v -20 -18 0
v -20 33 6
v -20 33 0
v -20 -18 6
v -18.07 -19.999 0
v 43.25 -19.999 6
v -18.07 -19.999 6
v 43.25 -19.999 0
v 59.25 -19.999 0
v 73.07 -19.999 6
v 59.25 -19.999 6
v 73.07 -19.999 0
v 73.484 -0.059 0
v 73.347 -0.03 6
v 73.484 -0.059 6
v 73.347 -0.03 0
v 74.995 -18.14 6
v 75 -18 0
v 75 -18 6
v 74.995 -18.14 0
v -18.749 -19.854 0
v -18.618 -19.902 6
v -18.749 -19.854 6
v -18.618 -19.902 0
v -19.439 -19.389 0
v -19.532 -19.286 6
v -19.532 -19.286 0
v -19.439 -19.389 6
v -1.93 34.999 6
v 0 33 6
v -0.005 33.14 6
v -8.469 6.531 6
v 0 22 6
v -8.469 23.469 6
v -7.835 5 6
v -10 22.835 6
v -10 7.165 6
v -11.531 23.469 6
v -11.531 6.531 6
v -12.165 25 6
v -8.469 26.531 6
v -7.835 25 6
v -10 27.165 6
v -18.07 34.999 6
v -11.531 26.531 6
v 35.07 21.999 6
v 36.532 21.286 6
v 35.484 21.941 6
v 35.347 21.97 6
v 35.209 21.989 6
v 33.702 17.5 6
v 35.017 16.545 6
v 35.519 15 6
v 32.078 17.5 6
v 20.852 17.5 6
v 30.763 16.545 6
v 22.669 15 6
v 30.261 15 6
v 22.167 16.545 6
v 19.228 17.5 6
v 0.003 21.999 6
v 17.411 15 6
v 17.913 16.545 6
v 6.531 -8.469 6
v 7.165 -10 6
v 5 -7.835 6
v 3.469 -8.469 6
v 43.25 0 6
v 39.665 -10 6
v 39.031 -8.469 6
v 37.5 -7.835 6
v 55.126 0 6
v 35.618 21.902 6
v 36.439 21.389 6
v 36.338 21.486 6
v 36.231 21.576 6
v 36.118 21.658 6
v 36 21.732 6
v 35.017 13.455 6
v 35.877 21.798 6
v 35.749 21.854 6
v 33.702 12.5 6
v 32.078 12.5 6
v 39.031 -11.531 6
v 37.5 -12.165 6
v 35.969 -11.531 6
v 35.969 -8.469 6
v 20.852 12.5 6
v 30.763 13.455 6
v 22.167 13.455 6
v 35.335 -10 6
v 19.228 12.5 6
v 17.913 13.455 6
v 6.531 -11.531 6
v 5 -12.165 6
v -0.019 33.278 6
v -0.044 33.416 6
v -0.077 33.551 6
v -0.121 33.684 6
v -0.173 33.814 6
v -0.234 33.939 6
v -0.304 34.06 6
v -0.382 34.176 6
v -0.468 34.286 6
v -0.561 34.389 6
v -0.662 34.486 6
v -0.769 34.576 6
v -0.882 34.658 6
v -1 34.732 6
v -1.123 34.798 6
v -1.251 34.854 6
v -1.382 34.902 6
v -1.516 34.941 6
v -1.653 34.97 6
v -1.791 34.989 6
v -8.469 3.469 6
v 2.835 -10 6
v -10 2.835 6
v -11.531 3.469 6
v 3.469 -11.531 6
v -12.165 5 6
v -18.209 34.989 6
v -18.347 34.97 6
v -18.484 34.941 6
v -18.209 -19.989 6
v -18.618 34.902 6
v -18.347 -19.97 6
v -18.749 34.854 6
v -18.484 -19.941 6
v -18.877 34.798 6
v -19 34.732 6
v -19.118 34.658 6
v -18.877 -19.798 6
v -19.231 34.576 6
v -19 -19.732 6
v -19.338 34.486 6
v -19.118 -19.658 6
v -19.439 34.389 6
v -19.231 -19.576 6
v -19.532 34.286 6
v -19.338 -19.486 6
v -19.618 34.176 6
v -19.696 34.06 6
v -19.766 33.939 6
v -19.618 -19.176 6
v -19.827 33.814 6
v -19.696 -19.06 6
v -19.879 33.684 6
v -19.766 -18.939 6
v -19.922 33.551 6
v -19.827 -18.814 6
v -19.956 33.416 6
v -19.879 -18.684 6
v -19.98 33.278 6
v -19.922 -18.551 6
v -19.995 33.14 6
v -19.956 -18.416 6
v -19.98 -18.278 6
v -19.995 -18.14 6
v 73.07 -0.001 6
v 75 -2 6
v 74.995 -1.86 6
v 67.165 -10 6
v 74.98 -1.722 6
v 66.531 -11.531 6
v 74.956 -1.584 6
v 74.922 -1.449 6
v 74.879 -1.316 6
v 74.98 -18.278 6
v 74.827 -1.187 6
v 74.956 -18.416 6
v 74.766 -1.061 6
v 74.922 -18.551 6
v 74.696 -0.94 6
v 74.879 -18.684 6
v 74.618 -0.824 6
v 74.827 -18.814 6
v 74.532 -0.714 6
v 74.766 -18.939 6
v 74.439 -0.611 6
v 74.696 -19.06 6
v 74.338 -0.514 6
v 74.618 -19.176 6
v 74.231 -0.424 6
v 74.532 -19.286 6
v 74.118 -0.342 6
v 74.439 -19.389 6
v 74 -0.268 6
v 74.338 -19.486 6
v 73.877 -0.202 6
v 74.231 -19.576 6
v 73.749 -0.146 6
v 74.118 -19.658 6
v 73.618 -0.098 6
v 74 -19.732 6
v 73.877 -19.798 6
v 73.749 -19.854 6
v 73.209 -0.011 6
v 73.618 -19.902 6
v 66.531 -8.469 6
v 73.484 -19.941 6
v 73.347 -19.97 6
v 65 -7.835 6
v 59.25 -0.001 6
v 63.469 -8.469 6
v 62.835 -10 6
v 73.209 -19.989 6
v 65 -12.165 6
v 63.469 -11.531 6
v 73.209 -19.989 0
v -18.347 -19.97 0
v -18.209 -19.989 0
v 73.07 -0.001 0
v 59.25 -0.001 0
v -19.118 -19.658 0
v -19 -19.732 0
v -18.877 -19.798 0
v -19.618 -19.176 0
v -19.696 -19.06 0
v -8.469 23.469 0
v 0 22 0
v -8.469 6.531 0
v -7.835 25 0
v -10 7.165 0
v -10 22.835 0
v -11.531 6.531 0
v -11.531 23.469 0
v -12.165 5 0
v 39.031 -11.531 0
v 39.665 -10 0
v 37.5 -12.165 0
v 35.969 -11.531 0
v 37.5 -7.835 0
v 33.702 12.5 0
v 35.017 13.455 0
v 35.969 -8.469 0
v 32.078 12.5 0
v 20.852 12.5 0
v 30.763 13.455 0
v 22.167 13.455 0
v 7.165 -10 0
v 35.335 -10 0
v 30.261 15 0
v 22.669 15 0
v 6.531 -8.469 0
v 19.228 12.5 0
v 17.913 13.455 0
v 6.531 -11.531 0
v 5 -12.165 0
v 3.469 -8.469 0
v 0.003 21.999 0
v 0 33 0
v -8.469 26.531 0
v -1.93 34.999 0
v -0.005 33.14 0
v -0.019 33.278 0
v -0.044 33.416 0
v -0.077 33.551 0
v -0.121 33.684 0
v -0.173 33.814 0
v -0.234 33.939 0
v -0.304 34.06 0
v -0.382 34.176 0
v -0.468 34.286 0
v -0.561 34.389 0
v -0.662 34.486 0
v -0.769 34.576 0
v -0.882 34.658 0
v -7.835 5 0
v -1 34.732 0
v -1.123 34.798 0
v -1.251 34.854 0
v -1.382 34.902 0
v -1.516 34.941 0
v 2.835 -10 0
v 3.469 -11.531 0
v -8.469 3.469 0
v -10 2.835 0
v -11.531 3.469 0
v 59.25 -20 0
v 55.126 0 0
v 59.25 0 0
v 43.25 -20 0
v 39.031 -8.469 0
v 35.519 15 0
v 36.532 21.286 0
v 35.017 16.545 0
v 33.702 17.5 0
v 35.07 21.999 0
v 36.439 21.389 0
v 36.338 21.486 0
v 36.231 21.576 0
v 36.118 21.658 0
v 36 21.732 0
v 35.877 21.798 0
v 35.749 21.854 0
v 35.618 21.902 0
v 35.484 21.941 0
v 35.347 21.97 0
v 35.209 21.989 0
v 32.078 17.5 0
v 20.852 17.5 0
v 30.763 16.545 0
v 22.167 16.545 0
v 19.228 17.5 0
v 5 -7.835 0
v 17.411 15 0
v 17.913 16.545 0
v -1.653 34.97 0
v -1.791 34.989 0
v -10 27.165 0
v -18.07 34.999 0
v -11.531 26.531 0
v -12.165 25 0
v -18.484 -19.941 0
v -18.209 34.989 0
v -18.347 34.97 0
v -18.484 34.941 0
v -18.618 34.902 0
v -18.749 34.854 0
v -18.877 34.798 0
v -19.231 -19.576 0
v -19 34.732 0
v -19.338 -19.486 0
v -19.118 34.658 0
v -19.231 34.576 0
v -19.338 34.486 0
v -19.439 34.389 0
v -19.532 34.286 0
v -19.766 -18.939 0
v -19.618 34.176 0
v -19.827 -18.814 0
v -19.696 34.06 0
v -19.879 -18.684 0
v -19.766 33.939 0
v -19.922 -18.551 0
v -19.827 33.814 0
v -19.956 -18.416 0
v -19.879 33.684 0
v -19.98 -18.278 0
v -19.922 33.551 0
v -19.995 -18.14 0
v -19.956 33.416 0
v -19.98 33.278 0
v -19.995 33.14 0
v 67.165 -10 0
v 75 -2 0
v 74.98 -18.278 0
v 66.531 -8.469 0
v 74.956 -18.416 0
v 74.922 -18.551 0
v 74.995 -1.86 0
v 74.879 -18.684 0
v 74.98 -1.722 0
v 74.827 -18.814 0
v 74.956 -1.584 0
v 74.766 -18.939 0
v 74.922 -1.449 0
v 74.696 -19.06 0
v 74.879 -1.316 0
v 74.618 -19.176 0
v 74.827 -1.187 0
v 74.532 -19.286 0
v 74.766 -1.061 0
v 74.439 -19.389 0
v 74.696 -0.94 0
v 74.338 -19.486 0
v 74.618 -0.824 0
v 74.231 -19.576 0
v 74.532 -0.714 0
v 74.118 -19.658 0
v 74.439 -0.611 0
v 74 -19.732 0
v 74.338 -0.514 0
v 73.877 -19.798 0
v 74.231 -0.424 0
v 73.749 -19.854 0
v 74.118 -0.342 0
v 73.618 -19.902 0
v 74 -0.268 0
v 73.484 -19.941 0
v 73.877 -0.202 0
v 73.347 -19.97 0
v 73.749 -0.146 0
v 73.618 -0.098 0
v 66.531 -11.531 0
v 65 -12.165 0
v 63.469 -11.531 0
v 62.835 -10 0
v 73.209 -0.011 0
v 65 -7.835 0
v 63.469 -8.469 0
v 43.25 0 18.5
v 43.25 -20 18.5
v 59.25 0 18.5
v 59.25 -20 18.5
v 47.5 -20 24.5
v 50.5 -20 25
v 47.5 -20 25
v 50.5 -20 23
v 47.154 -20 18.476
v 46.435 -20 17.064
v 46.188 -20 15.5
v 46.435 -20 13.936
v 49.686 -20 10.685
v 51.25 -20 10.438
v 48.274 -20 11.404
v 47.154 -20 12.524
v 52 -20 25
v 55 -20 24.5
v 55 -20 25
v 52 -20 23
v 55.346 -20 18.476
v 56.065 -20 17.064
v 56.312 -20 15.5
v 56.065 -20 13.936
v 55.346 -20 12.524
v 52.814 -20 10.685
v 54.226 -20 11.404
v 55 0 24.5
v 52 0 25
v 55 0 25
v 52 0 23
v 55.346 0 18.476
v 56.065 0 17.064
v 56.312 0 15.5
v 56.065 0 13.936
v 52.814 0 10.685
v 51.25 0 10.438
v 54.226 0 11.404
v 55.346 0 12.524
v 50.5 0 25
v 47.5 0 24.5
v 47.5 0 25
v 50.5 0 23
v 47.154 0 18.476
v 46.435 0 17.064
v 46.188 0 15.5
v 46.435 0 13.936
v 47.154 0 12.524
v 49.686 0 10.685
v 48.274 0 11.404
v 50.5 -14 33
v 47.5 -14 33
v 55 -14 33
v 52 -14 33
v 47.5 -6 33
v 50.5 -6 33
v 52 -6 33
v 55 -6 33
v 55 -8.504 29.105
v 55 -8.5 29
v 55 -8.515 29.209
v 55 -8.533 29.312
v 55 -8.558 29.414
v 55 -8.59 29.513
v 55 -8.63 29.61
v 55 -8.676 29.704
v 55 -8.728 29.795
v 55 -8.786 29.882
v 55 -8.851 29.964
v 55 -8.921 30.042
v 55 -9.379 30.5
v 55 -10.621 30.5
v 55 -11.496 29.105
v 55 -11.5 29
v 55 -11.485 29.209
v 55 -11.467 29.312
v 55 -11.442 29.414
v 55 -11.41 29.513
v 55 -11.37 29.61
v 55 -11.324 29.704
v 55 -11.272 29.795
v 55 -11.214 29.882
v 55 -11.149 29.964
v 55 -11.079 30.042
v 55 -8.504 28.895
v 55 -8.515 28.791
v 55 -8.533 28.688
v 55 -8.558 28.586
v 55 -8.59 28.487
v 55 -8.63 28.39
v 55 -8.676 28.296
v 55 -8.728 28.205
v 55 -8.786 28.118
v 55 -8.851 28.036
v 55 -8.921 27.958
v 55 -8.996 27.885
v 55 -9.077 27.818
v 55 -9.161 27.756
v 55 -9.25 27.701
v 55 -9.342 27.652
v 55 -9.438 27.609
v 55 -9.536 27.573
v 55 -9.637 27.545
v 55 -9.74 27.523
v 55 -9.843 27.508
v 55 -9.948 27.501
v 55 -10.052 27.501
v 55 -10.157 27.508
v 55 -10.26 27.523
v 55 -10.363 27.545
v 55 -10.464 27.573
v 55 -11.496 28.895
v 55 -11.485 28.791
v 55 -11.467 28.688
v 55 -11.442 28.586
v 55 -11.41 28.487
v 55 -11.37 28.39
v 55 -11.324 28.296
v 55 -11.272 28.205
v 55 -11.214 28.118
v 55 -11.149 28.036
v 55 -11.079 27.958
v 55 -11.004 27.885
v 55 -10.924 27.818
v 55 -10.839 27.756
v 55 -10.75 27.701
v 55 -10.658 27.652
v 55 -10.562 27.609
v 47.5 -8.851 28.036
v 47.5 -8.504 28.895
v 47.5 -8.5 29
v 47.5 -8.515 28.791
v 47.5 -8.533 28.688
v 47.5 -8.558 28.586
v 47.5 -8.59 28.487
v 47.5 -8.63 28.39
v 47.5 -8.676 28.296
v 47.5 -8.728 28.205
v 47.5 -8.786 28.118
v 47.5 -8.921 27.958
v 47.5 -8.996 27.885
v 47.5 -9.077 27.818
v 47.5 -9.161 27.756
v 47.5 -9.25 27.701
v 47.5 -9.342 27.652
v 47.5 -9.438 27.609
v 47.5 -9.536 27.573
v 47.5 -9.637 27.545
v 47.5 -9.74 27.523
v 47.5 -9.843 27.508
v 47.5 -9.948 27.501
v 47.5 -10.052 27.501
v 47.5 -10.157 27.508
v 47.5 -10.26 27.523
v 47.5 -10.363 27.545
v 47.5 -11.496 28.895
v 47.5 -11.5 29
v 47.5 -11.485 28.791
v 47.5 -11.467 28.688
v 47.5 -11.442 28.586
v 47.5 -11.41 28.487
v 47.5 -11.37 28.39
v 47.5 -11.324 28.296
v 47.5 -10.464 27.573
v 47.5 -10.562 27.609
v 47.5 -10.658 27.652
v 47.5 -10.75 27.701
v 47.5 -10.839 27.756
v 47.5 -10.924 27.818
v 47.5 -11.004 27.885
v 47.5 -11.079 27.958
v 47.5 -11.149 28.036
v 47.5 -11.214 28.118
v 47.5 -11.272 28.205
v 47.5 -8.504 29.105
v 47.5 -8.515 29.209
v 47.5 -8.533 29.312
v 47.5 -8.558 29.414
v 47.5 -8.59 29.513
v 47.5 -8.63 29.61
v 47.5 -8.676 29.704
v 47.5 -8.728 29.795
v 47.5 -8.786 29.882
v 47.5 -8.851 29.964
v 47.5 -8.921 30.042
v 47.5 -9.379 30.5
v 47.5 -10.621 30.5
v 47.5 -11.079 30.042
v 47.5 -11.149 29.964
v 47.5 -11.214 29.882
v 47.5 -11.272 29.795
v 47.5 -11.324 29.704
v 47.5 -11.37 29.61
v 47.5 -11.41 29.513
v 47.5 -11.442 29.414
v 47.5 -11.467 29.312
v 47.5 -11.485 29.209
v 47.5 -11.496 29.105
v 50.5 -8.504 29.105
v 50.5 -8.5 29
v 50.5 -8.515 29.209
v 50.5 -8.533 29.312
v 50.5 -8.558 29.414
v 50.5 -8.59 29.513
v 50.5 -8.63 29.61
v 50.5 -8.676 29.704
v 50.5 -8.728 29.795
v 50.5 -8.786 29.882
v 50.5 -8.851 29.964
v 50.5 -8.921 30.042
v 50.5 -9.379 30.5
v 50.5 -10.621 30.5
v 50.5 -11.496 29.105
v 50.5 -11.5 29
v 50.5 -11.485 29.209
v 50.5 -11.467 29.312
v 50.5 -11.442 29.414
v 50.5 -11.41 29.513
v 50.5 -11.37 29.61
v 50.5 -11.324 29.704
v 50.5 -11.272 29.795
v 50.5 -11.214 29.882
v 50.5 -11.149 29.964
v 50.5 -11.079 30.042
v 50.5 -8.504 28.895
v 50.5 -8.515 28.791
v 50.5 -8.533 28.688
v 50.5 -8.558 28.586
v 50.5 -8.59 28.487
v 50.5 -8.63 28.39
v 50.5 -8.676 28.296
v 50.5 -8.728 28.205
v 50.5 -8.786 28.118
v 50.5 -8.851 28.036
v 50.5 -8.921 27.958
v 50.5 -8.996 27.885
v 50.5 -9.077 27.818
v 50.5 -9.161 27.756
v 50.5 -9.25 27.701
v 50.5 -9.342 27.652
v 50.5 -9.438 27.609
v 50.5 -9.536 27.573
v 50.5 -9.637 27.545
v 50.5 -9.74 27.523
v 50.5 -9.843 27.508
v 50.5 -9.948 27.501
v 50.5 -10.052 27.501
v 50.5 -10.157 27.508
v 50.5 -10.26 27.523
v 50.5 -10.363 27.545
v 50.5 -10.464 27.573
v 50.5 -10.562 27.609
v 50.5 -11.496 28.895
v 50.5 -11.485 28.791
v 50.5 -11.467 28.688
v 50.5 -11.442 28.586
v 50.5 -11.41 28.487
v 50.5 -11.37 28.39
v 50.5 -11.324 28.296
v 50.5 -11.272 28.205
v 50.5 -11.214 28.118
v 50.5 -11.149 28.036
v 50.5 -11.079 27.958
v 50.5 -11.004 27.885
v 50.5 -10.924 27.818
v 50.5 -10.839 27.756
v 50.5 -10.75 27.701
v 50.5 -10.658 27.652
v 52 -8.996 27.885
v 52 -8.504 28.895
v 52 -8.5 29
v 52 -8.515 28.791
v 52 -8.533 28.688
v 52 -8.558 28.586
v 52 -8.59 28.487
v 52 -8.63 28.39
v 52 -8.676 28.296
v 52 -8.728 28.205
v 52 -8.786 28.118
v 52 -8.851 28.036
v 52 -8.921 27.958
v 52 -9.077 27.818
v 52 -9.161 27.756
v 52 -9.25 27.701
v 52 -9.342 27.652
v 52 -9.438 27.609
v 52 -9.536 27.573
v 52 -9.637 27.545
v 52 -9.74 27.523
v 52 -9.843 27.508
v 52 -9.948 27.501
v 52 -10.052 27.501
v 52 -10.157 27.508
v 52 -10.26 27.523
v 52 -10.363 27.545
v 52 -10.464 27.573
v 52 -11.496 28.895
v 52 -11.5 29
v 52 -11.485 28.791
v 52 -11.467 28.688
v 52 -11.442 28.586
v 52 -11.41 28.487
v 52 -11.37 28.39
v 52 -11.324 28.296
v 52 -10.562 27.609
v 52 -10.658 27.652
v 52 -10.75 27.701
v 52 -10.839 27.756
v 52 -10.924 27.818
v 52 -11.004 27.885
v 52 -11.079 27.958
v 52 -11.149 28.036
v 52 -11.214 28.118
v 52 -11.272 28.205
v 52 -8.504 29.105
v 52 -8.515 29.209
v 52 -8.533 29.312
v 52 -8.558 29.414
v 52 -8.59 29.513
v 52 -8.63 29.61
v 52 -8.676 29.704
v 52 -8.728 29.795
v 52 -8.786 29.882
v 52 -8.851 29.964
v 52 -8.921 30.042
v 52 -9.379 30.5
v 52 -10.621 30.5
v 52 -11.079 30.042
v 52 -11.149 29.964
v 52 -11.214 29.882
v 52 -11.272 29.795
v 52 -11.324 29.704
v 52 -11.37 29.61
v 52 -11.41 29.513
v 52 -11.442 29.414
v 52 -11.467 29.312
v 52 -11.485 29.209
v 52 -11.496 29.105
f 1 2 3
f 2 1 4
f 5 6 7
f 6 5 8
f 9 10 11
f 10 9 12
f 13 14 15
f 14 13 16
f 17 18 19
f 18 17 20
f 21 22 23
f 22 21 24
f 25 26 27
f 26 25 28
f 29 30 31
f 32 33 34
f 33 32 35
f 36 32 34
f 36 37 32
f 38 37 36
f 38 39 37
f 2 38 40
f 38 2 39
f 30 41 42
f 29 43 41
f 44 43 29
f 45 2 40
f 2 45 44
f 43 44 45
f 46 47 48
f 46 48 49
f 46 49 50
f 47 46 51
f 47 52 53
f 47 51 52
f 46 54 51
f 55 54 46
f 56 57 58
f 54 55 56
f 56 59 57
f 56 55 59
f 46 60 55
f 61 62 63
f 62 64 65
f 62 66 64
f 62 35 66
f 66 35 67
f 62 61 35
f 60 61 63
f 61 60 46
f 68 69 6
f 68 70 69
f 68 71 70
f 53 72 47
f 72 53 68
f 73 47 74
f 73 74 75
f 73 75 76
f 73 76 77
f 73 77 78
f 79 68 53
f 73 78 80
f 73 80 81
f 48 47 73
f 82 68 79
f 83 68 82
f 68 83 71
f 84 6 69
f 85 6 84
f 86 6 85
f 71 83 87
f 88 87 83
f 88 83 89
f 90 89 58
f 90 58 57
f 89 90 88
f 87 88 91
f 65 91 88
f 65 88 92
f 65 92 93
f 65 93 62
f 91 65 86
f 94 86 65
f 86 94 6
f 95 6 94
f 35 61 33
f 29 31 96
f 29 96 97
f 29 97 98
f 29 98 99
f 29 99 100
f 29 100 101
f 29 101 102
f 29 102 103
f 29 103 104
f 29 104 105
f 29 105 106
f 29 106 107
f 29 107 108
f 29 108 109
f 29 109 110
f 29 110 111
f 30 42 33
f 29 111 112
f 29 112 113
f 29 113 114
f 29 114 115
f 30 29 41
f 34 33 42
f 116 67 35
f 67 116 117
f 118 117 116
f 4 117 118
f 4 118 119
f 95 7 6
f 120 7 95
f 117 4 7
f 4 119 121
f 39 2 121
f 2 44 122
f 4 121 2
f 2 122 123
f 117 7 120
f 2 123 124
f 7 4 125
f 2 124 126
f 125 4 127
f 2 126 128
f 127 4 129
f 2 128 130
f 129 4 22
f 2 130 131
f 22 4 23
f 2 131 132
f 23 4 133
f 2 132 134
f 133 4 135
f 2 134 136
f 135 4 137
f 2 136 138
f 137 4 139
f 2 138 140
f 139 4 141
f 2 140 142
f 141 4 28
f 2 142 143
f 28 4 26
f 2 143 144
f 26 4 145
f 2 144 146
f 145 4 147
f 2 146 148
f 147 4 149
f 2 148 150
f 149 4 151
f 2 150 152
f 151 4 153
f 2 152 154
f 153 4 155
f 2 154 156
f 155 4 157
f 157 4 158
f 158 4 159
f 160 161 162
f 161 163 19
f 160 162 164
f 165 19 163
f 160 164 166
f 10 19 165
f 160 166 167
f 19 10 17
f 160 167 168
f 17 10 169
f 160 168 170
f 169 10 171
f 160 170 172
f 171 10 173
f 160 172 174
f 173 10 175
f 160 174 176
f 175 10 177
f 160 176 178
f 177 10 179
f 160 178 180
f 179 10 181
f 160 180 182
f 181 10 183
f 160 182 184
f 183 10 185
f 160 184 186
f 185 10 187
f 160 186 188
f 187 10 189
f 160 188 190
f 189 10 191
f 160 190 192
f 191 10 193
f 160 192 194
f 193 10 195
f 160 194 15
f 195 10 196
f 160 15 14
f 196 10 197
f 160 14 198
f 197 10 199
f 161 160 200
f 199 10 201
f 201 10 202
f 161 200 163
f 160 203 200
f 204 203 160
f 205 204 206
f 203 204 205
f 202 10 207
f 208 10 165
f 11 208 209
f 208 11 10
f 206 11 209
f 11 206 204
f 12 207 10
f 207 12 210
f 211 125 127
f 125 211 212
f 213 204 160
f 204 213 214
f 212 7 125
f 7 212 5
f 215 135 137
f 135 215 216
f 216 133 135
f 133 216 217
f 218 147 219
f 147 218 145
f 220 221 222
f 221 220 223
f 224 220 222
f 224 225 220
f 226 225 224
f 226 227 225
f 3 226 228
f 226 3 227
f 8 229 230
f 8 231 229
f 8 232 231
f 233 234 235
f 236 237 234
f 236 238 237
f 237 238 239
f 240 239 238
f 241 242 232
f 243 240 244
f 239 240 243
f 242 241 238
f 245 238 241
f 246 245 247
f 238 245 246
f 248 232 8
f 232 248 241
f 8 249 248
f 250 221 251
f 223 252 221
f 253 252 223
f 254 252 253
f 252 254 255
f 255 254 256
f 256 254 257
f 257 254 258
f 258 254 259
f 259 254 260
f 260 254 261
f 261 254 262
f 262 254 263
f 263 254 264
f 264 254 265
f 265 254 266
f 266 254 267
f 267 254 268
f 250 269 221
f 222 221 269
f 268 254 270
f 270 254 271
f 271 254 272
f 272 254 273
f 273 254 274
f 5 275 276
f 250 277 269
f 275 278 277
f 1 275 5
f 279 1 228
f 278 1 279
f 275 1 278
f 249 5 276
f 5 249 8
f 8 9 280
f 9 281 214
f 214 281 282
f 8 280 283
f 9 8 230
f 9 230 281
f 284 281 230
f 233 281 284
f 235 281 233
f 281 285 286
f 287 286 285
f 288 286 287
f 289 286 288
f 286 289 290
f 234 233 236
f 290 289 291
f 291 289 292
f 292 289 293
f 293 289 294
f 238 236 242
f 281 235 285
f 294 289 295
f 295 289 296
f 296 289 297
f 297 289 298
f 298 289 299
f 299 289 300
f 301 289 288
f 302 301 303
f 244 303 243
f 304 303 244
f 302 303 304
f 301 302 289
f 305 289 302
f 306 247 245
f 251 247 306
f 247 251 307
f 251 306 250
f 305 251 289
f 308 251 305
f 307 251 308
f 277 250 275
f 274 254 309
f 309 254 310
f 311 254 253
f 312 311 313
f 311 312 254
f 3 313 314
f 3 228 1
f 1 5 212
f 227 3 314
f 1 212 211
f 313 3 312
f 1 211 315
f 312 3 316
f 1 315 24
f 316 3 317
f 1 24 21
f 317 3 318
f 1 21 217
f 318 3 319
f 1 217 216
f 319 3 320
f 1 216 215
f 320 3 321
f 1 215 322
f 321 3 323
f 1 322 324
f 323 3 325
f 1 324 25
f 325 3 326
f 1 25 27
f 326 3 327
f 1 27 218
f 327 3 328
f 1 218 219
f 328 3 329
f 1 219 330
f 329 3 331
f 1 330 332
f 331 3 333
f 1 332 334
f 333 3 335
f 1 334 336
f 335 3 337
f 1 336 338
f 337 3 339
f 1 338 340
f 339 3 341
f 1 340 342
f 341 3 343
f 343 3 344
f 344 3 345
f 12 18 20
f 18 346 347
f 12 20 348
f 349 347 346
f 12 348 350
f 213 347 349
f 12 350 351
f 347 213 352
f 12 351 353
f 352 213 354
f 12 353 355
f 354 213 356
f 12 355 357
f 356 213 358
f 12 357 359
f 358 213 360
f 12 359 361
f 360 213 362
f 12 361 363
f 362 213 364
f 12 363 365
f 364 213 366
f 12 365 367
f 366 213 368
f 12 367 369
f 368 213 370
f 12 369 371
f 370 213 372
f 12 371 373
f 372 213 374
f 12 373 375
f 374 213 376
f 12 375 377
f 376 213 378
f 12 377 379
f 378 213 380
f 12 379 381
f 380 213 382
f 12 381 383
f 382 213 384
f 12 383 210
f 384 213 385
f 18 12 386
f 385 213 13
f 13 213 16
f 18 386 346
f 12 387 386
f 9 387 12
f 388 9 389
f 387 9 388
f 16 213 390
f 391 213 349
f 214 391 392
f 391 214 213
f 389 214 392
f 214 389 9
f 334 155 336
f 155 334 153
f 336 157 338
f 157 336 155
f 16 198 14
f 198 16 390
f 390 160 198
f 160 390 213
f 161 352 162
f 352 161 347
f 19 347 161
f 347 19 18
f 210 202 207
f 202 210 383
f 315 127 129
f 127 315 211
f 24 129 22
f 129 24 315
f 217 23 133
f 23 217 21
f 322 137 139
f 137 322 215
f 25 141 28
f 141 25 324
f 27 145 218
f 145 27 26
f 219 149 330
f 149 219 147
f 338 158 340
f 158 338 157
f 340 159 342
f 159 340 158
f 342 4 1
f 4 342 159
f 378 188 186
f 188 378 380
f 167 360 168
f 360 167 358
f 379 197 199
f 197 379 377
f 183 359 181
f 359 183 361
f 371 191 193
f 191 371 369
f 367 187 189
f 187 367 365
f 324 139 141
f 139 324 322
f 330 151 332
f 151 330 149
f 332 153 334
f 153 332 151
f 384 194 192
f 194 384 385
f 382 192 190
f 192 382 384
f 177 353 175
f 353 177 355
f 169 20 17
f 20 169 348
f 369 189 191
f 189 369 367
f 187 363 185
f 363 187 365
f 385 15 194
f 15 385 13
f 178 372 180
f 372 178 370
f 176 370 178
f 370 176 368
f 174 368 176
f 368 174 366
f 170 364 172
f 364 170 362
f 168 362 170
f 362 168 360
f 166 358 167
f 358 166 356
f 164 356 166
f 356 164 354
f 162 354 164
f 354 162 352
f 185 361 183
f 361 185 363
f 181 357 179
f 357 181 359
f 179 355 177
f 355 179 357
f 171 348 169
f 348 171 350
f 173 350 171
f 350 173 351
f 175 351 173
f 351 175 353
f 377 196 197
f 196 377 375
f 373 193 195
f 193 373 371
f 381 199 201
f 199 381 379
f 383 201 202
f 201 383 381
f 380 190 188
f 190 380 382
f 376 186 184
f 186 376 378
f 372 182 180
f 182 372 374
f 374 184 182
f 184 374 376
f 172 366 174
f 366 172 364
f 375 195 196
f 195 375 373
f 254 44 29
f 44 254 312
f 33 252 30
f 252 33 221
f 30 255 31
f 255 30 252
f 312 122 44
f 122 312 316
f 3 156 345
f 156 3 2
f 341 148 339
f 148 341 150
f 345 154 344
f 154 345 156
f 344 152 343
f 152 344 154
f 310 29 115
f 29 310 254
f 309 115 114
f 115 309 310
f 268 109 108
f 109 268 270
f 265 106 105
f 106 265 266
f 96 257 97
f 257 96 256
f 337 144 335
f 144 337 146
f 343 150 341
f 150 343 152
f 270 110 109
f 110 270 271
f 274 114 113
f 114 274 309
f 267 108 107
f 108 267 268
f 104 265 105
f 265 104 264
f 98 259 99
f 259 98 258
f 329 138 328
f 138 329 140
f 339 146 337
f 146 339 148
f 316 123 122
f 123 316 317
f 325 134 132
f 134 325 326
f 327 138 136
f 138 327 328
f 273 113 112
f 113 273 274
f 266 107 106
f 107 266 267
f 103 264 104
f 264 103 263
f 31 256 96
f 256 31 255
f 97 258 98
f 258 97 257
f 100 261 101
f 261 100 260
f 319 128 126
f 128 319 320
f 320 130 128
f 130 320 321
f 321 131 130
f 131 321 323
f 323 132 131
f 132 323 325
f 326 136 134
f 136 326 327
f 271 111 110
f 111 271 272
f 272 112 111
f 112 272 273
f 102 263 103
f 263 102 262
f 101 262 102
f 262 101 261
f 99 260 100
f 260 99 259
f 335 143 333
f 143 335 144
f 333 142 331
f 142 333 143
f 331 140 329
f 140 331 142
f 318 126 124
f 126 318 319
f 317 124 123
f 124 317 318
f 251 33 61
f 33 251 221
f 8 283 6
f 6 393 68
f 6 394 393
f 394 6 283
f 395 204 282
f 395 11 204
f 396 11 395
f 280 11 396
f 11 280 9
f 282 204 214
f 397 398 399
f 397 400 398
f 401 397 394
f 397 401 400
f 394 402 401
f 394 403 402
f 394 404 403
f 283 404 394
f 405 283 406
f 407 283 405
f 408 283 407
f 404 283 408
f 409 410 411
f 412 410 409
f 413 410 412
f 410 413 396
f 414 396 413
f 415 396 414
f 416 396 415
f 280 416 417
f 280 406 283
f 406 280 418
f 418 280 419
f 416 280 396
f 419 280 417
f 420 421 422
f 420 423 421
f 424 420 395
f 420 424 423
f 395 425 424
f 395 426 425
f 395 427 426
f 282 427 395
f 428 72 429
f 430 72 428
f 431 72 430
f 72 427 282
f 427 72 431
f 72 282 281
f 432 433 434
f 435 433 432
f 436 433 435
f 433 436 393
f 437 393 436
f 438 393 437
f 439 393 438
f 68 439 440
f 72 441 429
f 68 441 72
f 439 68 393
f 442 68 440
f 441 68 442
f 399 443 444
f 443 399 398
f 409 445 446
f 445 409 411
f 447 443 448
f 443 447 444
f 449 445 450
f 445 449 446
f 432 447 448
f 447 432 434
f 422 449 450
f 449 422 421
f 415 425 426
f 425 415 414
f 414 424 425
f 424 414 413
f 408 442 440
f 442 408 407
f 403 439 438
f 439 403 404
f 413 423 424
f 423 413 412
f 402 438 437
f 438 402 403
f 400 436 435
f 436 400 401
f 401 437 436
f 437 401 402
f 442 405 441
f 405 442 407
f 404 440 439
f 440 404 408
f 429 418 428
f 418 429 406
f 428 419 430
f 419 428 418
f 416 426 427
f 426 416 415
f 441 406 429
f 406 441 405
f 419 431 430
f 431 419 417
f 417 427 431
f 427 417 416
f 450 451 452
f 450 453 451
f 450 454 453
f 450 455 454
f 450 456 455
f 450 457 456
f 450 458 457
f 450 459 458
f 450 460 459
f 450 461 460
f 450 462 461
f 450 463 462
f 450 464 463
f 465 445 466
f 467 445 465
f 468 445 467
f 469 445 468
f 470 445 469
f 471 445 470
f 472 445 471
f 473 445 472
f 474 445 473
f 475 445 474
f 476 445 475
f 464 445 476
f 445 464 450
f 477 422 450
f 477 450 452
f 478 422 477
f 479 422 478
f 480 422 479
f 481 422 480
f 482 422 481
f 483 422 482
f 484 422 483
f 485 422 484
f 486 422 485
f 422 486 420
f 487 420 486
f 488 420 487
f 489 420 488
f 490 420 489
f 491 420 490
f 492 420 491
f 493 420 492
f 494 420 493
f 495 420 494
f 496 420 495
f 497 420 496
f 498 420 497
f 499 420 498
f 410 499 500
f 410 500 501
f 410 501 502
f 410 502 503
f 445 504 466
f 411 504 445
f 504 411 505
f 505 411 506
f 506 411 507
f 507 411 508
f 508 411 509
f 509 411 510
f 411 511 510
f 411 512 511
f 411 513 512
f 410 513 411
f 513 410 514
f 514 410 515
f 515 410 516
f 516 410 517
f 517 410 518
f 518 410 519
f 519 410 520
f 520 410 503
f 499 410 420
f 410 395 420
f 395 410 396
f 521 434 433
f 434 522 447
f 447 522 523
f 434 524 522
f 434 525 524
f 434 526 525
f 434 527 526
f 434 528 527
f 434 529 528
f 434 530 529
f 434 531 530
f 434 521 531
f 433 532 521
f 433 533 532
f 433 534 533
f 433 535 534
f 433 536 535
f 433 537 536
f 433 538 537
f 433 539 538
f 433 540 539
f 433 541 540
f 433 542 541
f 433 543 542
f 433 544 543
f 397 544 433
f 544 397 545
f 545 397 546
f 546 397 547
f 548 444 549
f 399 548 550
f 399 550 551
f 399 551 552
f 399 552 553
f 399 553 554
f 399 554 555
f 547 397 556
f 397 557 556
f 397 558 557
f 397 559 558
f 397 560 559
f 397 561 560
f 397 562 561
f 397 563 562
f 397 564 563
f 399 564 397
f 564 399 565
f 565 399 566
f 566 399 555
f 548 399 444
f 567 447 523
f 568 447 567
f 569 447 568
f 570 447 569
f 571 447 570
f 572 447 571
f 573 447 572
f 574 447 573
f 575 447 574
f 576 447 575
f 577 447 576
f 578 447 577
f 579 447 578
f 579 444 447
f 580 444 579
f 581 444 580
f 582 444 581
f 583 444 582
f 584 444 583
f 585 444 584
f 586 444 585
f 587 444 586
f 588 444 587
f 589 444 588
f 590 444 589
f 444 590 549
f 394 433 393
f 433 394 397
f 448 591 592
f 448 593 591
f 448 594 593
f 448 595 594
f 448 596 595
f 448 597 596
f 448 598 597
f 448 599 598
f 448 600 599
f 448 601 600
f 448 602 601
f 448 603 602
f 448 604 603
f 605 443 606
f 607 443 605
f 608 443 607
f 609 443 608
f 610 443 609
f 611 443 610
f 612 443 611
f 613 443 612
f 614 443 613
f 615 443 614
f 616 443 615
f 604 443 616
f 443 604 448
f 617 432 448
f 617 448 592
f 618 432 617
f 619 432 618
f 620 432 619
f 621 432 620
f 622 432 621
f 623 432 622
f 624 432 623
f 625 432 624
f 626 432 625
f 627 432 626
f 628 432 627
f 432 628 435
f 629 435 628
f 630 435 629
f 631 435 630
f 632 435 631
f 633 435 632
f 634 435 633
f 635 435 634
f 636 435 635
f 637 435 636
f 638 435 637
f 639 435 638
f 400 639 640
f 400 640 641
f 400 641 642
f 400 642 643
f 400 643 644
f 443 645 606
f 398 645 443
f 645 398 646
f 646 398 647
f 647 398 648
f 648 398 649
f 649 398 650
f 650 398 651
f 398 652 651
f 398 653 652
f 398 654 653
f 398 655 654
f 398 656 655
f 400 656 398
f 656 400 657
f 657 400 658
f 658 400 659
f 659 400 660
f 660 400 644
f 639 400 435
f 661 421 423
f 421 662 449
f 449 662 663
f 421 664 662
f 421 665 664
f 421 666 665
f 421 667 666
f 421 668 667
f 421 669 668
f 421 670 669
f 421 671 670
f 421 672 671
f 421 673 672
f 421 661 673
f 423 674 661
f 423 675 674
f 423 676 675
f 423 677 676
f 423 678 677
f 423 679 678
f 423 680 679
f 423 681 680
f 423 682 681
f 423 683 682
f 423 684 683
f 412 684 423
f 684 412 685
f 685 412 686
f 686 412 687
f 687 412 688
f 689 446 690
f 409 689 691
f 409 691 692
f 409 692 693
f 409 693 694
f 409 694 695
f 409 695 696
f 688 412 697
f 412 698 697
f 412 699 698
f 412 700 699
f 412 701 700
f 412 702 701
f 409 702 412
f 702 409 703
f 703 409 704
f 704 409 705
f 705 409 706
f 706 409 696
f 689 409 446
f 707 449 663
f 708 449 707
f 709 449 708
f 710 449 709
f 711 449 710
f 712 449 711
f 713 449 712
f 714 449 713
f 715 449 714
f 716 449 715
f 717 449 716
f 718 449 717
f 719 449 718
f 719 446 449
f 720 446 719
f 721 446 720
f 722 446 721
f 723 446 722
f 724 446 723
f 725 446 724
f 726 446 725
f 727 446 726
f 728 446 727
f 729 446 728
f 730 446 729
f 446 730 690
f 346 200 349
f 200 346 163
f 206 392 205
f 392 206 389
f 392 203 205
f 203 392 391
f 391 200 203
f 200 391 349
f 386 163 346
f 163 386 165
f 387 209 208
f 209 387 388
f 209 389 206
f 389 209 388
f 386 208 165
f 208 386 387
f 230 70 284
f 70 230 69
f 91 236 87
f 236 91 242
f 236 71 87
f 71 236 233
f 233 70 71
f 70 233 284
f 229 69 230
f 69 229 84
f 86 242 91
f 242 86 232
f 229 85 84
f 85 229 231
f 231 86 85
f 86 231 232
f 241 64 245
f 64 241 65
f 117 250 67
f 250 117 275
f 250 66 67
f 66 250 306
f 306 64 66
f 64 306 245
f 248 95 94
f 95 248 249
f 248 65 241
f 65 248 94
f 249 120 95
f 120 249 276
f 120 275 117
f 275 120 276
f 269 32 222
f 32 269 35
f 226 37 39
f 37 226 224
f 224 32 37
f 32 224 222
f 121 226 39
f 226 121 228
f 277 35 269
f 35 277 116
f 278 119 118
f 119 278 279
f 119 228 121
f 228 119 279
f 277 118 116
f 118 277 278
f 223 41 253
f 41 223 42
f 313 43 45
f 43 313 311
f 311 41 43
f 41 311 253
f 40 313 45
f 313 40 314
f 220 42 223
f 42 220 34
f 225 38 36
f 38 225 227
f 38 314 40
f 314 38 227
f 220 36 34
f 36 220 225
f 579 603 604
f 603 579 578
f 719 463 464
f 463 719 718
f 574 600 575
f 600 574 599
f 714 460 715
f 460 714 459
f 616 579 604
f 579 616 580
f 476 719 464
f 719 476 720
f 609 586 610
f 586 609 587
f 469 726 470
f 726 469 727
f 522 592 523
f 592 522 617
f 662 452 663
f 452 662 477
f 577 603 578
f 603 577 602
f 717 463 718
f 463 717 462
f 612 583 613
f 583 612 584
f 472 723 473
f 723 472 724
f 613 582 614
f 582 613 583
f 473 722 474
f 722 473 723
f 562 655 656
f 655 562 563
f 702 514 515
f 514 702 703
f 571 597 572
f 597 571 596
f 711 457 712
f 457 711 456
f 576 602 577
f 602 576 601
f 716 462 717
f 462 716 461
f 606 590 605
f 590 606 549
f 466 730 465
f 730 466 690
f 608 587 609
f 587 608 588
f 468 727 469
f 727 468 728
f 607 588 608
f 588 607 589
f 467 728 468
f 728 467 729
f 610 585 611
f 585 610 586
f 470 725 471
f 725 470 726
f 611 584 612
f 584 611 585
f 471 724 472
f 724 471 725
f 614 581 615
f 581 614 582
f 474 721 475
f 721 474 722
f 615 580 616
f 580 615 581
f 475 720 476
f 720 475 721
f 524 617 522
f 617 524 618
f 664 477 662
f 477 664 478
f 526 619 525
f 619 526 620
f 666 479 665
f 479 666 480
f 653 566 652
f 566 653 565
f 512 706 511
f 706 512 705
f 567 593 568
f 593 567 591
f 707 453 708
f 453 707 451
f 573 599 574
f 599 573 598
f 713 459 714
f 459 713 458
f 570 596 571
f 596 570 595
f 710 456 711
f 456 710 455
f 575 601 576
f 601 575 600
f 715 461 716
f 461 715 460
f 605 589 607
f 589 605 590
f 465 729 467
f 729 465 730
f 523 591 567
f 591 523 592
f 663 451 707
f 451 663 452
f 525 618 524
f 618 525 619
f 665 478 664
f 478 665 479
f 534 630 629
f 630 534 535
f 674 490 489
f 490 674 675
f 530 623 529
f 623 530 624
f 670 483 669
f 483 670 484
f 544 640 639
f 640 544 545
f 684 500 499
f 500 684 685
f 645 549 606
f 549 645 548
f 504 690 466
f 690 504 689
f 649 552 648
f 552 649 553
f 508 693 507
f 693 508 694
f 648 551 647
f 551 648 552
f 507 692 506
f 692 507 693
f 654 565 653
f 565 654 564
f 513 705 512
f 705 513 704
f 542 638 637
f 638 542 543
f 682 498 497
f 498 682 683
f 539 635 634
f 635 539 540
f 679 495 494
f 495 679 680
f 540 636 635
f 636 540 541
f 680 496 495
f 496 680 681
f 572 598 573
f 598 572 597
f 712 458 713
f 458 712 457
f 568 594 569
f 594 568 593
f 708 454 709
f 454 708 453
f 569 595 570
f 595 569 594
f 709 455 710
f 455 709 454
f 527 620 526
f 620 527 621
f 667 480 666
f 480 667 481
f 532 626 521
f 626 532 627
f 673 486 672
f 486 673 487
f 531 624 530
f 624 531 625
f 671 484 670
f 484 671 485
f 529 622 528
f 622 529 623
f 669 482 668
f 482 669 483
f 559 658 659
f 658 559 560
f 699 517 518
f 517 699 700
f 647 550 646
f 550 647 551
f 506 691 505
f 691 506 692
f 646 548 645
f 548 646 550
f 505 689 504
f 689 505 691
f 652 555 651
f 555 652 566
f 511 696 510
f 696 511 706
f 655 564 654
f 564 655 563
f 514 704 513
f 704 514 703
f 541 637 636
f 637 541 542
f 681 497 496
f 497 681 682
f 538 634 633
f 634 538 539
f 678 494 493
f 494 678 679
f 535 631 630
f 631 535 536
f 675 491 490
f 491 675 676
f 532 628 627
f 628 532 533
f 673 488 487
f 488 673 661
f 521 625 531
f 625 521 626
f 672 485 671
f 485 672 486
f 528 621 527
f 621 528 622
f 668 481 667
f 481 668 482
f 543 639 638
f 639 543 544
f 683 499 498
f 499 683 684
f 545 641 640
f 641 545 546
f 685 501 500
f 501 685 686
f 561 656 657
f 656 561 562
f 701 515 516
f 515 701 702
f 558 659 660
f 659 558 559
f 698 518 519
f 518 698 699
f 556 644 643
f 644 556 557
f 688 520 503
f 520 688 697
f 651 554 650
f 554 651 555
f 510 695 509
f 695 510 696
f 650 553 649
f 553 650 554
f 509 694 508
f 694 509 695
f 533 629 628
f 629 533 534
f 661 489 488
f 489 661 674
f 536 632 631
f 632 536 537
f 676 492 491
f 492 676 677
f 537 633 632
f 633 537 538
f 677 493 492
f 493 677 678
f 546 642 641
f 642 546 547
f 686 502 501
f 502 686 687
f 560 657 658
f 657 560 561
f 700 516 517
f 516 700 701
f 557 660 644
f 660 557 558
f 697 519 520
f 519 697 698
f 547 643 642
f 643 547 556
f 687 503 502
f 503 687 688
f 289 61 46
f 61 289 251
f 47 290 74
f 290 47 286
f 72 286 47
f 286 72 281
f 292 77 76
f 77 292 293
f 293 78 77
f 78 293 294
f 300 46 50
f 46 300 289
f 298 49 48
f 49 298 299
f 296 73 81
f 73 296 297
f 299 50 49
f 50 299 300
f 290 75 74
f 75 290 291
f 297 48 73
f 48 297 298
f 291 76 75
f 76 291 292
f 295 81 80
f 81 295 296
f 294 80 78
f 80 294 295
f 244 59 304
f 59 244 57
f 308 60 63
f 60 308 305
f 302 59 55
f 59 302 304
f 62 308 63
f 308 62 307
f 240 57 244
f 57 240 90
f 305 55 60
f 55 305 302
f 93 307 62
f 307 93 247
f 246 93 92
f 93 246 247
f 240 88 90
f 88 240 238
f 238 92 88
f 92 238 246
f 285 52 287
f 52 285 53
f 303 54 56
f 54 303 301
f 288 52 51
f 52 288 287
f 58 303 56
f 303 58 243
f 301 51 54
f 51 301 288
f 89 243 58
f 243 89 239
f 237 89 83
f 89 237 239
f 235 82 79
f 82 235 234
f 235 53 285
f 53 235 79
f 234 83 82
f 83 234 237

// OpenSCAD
// file: trunctear.scad
//A module for truncated tear drops.

trunctear(1, 0.5, $fn = 90);

module trunctear(hei, radian, cent = false)
{
    linear_extrude(height = hei, center = cent)
        hull()
        {
            circle(r = radian);
            translate([0, radian/2])
                square([2*(radian*(2*cos(45)-1)), radian], center = true);
        }
}
// file: Y-BarMount.scad
// A mount for the y-axis bar.

use<polyhole.scad>
use<trunctear.scad>

YMount();

module YMount()
{
    difference()
    {
        union()
        {
            hull()
            {
                translate([-18, -18, 0])
                    cylinder(h = 6, r = 2, $fn = 90);
                translate([-18, -2, 0])
                    cylinder(h = 6, r = 2, $fn = 90);
                translate([73, -2, 0])
                    cylinder(h = 6, r = 2, $fn = 90);
                translate([73, -18, 0])
                    cylinder(h = 6, r = 2, $fn = 90);
            }
            hull()
            {
                translate([-18, -18, 0])
                    cylinder(h = 6, r = 2, $fn = 90);
                translate([-2, -18, 0])
                    cylinder(h = 6, r = 2, $fn = 90);
                translate([-2, 33, 0])
                    cylinder(h = 6, r = 2, $fn = 90);
                translate([-18, 33, 0])
                    cylinder(h = 6, r = 2, $fn = 90);
            }
            linear_extrude(height = 6)
                polygon([[-5, -5], [50, 0], [0, 22]]);
            translate([51.25, -10, 19])
                cube([16, 20, 38], center = true);
        }
        hull()
        {
            translate([51.25, 0, 15.5])
                rotate([90, 0, 0])
                    polyhole(20, 5);
            translate([51.25, -10, 22])
                cube([1.5, 20, 2], center = true);
        }
        hull()
        {
            translate([61, -10, 38])
                cube([12, 20, 1], center = true);
            translate([61, -10, 25])
                cube([12, 20, 1], center = true);
            translate([60.25, -10, 19])
                cube([2, 20, 1], center = true);
        }
        hull()
        {
            translate([41.5, -10, 38])
                cube([12, 20, 1], center = true);
            translate([41.5, -10, 25])
                cube([12, 20, 1], center = true);
            translate([42.25, -10, 19])
                cube([2, 20, 1], center = true);
        }
        difference()
        {
            translate([51.25, -10, 38])
                cube([16, 20, 26], center = true);
            hull()
            {
                translate([51.25, -10, 24])
                    cube([14, 20, 2], center = true);
                translate([51.25, -10, 32])
                    cube([14, 8, 2], center = true);
            }
        }
        translate([51.25, -10, 26.5])
                cube([1.5, 20, 26], center = true);
        translate([65, -10, 0])
            polyhole(6, 2);
        translate([37.5, -10, 0])
            polyhole(6, 2);
        translate([5, -10, 0])
            polyhole(6, 2);
        translate([-10, 5, 0])
            polyhole(6, 2);
        translate([-10, 25, 0])
            polyhole(6, 2);
        translate([46, -10, 29])
            rotate([90, 0, 90])
                trunctear(14, 1.5, $fn = 90);
    }
}
// file: polyhole.scad
// The Cylinder is dead! Long live the Cylinder!
// A module for a polyhole by radius, based on Nophead's work.

module polyhole(h, r, cent = false)
{
    n = max(round(4 * r), 3);
    cylinder(h = h, r = r / cos(180 / n), $fn = n, center = cent);
}
// main file
//The y-axis mount with bearing holes.

use<polyhole.scad>
use<Y-BarMount.scad>

YMountBearing();

module YMountBearing()
{
    difference()
    {
        union()
        {
            YMount();
            hull()
            {
                cylinder(h = 6, r = 2, $fn = 90);
                translate([0, 20, 0])
                    cylinder(h = 6, r = 2, $fn = 90);
                translate([35, 20, 0])
                    cylinder(h = 6, r = 2, $fn = 90);
                translate([55, -2, 3])
                    cube([2, 2, 6], center = true);
            }
        }
        translate([42.3/2-12.22/2+5, 15, 0])
            polyhole(6, 2.5);
        translate([42.3/2+12.22/2+0.63+5, 15, 0])
            polyhole(6, 2.5);
    }
}
